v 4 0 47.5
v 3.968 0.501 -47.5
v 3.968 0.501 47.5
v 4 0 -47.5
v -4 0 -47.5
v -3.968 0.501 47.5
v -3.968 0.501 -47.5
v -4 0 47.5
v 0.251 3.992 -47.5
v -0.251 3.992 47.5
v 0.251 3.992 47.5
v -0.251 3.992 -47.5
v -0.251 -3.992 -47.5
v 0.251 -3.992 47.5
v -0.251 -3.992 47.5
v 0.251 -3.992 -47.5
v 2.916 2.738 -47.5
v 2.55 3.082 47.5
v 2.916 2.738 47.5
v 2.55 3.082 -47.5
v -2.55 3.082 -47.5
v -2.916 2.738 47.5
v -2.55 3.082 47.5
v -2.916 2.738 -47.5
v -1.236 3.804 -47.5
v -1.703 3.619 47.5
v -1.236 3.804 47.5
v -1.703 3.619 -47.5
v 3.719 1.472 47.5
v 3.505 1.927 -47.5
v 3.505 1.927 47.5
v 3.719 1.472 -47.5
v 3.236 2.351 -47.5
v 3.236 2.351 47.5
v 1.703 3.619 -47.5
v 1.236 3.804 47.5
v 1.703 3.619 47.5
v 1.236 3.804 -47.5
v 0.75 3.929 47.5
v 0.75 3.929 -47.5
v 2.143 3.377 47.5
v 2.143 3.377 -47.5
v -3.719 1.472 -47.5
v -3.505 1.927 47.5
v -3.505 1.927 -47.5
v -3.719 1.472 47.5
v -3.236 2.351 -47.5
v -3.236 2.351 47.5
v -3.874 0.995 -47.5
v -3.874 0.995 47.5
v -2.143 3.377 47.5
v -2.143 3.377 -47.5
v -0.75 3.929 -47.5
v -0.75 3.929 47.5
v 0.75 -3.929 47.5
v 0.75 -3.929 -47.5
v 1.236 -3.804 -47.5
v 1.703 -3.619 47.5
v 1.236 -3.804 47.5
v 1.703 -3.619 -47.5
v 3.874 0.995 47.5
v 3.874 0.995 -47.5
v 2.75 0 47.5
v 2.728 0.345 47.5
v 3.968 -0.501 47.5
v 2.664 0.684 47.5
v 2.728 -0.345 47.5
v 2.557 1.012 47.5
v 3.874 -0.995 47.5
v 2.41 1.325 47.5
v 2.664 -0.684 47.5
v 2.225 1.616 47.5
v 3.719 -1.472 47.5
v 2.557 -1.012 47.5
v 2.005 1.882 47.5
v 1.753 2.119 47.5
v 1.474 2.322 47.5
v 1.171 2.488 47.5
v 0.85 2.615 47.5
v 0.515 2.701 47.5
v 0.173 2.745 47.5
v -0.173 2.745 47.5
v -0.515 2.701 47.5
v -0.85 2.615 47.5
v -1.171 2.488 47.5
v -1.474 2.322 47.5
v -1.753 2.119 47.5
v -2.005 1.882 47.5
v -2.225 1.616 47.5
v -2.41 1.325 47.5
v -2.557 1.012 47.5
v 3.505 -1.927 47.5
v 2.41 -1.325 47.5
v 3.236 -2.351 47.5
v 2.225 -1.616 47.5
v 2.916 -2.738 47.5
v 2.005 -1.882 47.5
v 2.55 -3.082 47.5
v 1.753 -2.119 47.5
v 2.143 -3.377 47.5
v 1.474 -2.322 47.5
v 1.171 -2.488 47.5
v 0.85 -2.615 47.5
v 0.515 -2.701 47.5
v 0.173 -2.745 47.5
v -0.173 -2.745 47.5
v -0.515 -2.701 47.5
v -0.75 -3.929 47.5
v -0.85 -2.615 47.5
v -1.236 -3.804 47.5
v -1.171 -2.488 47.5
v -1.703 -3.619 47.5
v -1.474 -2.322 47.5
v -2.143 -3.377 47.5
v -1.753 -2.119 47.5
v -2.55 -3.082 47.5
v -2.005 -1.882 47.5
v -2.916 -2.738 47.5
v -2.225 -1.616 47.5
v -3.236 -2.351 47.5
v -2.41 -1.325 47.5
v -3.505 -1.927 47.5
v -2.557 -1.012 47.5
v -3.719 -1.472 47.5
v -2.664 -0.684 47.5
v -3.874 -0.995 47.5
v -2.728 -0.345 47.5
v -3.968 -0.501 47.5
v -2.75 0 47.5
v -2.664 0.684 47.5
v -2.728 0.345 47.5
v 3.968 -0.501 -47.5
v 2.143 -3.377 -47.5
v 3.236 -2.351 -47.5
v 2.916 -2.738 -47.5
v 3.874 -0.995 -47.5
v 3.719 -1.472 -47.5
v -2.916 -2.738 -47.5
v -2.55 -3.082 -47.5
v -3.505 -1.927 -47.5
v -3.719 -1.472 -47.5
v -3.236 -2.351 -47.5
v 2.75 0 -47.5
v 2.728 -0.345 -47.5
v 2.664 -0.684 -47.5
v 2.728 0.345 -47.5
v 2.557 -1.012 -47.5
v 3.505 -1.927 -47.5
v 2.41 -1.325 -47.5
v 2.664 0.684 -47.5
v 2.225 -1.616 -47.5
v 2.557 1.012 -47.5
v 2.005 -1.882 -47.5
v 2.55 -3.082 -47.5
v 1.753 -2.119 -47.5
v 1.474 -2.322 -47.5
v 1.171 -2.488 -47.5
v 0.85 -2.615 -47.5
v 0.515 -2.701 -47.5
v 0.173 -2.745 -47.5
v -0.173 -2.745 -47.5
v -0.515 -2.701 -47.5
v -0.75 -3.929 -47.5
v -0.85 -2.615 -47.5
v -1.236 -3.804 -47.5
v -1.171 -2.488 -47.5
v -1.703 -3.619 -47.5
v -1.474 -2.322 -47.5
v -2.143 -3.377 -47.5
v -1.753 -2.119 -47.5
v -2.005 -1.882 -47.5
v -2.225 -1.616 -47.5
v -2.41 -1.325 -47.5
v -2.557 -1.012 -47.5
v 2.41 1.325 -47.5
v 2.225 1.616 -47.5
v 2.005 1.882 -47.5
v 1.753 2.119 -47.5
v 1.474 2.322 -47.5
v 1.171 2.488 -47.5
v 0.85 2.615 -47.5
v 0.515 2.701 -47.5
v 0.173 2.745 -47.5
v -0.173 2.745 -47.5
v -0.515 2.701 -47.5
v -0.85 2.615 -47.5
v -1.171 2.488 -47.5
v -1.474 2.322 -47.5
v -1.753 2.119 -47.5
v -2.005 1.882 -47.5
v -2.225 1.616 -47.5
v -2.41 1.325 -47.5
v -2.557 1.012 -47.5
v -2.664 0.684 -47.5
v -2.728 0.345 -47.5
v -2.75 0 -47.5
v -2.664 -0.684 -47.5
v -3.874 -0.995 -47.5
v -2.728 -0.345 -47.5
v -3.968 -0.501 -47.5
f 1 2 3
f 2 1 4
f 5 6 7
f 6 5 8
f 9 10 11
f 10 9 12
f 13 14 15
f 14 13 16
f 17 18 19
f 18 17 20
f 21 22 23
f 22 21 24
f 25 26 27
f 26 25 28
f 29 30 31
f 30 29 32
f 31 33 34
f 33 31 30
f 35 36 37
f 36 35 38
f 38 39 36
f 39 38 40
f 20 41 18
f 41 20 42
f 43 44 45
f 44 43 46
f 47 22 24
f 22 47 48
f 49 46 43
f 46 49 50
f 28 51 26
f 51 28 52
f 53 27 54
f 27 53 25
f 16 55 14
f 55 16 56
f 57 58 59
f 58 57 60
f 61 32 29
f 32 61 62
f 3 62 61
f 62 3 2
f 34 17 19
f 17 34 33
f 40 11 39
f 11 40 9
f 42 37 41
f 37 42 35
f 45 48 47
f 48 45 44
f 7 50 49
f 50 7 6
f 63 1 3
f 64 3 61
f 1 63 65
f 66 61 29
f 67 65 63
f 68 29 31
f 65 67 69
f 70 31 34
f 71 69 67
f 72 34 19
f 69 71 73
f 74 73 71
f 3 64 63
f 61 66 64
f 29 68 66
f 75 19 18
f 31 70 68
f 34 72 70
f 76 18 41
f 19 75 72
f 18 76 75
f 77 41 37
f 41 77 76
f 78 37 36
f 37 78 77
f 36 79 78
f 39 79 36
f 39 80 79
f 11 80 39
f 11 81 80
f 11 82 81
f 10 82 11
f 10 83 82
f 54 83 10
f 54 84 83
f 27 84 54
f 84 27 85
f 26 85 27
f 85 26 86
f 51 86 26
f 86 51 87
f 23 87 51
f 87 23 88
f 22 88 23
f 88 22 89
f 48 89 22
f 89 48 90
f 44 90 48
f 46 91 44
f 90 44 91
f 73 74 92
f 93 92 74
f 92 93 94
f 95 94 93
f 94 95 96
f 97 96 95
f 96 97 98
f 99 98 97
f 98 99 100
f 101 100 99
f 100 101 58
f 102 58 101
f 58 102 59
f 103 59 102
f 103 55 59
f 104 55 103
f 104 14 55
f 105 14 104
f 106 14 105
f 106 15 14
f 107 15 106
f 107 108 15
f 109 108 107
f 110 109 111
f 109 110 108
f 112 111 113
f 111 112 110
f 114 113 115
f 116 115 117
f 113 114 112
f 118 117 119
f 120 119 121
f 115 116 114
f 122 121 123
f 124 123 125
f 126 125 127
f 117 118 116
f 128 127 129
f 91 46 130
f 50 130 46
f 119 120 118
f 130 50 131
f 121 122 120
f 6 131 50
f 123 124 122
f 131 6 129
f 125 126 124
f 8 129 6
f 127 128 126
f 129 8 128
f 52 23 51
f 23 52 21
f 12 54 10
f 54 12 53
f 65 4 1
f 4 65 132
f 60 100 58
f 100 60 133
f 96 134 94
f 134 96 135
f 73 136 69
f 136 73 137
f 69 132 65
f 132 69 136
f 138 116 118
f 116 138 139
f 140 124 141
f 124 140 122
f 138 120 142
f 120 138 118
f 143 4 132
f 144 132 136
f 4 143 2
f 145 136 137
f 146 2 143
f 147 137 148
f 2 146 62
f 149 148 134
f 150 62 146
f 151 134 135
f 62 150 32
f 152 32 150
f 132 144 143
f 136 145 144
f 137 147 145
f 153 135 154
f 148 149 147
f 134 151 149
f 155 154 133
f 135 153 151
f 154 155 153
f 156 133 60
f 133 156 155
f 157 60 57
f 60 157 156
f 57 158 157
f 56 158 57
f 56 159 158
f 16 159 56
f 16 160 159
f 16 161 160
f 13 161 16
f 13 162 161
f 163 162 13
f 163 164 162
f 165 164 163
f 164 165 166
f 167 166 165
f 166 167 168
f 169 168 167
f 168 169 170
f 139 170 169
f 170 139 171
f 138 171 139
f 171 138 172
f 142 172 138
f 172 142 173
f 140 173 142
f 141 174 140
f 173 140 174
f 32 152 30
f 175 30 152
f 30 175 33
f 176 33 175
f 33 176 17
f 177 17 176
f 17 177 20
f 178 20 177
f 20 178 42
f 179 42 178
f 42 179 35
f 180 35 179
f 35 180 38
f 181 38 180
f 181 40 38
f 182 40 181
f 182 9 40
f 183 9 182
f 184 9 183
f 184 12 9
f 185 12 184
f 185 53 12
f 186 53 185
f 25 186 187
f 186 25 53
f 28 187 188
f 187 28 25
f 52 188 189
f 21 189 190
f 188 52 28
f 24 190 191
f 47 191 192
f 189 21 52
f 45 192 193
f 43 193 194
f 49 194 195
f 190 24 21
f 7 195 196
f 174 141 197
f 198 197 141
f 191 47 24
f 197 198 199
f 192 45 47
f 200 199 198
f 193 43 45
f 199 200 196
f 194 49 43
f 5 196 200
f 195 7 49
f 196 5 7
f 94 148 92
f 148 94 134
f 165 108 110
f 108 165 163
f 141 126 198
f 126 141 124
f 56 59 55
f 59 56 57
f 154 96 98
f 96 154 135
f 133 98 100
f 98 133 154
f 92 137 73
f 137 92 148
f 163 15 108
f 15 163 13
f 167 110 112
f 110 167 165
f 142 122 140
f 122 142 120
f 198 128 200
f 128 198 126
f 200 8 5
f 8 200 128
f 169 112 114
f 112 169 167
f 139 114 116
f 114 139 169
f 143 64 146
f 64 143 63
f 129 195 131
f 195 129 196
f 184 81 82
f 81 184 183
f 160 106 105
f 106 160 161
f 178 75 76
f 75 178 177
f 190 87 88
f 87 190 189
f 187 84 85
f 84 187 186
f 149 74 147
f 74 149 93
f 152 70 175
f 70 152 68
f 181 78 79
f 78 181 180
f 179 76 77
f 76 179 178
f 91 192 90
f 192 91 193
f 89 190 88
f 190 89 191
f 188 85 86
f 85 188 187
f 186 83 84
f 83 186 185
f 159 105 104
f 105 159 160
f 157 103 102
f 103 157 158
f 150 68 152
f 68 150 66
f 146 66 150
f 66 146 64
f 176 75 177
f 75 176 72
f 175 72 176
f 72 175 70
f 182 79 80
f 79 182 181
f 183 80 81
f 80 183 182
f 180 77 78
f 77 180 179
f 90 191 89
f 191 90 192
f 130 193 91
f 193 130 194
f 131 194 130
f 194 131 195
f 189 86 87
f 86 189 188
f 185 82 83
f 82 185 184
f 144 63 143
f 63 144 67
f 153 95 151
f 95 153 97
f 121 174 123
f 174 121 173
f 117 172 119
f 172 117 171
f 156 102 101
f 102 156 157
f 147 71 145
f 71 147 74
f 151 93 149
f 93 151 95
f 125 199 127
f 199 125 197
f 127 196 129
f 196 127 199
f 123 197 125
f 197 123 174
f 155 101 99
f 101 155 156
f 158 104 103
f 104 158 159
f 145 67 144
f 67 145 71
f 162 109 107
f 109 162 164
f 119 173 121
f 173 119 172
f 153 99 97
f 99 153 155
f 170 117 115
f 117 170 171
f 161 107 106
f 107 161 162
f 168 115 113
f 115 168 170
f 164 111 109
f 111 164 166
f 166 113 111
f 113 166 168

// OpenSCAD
$fn = 50;


difference() {
	union() {
		translate(v = [0, 0, -47.5000000000]) {
			cylinder(h = 95, r = 4.0000000000);
		}
	}
	union() {
		translate(v = [0, 0, -100.0000000000]) {
			cylinder(h = 200, r = 2.7500000000);
		}
	}
}
